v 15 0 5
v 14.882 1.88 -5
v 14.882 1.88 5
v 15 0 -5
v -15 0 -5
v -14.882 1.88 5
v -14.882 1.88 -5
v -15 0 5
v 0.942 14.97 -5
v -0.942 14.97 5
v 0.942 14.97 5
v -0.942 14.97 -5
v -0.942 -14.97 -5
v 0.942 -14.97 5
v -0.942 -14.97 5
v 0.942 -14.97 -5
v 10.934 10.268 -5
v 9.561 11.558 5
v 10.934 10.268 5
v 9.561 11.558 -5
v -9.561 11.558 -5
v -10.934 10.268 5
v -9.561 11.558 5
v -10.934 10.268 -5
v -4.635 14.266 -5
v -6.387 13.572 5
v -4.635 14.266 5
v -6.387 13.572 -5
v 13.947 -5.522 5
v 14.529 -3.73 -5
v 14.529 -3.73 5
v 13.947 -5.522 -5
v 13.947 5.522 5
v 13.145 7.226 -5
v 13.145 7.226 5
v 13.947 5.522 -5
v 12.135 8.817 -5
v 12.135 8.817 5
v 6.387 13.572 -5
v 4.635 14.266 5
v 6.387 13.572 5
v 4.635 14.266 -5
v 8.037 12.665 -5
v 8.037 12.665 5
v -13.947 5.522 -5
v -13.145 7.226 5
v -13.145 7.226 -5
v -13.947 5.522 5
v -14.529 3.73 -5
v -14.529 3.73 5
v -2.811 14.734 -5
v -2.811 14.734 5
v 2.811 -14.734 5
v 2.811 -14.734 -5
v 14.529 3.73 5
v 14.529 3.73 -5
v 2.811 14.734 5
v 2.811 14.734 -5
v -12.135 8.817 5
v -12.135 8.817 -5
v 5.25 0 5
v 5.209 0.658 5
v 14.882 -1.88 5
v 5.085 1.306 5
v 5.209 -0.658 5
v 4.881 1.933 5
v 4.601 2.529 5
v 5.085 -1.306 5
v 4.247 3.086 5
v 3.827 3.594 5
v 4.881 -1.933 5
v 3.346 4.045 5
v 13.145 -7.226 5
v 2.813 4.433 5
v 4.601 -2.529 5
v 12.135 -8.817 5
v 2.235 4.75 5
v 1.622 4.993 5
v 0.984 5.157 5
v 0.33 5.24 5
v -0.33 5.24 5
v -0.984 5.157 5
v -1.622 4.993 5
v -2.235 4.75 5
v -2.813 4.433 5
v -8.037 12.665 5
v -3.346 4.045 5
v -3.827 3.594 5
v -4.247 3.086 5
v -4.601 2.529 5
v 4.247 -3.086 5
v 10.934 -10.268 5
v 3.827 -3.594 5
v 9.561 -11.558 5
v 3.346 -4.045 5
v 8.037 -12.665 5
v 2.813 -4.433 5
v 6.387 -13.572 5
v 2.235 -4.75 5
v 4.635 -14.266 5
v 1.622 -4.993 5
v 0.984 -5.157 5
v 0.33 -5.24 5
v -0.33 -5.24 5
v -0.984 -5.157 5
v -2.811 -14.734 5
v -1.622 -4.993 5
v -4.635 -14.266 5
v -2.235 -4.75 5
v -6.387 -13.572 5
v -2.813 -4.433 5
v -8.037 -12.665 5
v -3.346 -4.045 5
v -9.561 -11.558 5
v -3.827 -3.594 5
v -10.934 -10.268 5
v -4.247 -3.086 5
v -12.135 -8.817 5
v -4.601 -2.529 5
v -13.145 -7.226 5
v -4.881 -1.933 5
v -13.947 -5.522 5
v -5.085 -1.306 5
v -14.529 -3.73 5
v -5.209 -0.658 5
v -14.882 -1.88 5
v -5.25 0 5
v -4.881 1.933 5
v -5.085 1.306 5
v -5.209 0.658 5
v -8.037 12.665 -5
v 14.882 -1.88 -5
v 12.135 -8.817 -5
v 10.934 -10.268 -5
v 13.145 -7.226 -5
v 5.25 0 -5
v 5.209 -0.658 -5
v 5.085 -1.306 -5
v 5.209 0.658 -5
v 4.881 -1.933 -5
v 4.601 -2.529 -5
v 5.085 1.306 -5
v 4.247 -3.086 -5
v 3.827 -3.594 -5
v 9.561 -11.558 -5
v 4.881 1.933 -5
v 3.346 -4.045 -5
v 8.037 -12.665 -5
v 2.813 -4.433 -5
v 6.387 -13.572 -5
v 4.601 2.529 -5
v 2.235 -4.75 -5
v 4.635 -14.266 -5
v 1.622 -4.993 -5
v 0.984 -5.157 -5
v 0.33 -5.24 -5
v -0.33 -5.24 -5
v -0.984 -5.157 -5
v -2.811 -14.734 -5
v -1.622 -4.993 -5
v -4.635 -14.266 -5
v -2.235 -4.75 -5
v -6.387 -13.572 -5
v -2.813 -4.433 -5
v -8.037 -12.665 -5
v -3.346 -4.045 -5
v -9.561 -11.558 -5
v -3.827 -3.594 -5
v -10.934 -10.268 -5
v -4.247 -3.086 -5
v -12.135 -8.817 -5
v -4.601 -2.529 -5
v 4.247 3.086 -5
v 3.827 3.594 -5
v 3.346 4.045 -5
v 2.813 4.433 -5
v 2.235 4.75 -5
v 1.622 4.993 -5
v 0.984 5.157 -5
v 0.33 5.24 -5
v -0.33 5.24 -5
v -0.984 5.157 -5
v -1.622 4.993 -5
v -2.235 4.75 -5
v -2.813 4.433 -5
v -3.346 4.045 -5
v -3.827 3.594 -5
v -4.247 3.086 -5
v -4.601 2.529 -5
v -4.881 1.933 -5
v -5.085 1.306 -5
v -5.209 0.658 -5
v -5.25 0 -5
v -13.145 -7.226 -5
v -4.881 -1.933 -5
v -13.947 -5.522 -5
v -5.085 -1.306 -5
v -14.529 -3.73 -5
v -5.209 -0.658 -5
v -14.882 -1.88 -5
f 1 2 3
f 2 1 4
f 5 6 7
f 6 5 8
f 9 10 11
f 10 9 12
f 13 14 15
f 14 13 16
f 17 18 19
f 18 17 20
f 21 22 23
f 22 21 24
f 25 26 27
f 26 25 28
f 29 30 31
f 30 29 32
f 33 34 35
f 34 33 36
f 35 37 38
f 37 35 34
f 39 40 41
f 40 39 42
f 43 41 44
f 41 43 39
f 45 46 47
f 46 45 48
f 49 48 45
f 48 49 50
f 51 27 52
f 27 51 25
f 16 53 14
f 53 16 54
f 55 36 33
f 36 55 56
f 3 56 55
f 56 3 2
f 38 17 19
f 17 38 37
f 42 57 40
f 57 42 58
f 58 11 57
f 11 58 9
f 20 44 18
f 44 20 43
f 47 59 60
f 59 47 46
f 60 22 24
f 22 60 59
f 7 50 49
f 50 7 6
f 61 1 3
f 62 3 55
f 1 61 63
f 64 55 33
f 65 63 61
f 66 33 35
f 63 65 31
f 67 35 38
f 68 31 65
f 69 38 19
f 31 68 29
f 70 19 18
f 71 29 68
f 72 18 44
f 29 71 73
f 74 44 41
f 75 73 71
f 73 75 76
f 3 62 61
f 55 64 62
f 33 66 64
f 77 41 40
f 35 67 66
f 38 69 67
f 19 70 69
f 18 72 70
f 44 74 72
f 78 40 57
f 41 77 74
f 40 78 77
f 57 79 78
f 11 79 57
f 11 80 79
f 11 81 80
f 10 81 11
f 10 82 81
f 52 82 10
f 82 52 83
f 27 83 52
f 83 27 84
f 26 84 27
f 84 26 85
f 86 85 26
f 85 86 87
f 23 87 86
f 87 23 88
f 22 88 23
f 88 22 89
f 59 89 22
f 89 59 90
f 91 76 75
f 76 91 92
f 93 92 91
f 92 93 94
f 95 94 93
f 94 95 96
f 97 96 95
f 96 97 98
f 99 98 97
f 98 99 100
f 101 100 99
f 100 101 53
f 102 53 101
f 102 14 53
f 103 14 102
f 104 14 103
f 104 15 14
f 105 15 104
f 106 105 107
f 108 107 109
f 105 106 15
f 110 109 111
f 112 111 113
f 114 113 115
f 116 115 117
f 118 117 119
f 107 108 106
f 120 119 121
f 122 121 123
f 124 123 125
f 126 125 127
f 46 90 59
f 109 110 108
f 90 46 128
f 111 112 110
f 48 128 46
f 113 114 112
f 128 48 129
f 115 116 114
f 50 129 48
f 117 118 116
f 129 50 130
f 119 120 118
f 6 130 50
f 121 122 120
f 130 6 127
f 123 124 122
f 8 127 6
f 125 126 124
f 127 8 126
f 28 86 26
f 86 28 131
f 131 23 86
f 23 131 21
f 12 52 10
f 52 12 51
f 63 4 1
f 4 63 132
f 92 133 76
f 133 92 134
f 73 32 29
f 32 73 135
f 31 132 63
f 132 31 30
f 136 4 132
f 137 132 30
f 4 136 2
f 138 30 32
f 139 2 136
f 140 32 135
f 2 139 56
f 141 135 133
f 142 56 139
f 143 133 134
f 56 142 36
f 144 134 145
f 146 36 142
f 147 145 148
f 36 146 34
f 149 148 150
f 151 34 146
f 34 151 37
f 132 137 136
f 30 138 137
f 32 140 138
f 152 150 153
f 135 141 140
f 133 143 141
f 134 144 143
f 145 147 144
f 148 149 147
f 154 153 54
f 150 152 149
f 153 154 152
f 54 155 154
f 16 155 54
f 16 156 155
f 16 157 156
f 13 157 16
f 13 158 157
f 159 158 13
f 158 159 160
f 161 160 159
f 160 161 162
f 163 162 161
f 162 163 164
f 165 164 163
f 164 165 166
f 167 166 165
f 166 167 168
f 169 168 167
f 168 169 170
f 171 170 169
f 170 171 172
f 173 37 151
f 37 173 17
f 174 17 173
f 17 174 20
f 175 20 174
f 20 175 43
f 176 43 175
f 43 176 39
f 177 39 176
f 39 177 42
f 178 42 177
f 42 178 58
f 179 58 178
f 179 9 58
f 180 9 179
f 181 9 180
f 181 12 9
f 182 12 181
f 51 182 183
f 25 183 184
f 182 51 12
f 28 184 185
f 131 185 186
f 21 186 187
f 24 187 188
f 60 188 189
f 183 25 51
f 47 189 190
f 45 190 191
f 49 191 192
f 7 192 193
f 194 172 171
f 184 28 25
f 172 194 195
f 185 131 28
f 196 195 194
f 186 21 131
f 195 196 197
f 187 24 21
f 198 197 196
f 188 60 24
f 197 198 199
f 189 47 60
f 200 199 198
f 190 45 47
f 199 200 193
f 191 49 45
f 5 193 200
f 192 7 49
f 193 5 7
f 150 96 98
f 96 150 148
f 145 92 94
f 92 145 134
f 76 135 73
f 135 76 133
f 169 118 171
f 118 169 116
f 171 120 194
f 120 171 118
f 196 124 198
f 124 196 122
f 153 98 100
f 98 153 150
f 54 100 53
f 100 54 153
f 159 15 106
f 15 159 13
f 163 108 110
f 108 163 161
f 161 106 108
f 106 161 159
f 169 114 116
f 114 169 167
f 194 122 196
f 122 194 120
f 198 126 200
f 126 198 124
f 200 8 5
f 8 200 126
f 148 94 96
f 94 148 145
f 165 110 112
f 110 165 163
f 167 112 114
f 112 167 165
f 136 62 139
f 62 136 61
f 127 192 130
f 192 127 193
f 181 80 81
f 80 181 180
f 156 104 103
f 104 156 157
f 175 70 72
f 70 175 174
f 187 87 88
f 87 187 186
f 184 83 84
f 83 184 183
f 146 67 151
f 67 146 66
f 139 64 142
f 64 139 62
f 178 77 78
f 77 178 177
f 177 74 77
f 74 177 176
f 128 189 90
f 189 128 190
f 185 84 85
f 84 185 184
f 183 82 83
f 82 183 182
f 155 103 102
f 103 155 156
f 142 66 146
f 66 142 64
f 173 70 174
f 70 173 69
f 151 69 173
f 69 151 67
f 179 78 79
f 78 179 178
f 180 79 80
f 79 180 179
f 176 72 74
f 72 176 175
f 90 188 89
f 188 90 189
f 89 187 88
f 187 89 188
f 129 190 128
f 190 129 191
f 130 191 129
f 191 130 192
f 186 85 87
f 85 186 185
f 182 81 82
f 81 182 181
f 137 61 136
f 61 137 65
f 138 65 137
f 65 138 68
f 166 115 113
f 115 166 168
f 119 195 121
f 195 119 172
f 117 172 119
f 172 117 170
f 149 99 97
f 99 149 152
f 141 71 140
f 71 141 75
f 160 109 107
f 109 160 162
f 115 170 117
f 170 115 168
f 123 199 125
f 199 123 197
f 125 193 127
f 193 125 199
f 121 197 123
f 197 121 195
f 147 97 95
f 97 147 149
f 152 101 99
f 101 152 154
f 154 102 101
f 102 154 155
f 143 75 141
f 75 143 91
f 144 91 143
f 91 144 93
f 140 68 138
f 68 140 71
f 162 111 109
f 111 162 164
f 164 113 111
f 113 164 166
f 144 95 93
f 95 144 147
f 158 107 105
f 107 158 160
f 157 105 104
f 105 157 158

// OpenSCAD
$fn = 50;


difference() {
	union() {
		translate(v = [0, 0, -5.0000000000]) {
			cylinder(h = 10, r = 15.0000000000);
		}
	}
	union() {
		translate(v = [0, 0, -100.0000000000]) {
			cylinder(h = 200, r = 5.2500000000);
		}
	}
}
